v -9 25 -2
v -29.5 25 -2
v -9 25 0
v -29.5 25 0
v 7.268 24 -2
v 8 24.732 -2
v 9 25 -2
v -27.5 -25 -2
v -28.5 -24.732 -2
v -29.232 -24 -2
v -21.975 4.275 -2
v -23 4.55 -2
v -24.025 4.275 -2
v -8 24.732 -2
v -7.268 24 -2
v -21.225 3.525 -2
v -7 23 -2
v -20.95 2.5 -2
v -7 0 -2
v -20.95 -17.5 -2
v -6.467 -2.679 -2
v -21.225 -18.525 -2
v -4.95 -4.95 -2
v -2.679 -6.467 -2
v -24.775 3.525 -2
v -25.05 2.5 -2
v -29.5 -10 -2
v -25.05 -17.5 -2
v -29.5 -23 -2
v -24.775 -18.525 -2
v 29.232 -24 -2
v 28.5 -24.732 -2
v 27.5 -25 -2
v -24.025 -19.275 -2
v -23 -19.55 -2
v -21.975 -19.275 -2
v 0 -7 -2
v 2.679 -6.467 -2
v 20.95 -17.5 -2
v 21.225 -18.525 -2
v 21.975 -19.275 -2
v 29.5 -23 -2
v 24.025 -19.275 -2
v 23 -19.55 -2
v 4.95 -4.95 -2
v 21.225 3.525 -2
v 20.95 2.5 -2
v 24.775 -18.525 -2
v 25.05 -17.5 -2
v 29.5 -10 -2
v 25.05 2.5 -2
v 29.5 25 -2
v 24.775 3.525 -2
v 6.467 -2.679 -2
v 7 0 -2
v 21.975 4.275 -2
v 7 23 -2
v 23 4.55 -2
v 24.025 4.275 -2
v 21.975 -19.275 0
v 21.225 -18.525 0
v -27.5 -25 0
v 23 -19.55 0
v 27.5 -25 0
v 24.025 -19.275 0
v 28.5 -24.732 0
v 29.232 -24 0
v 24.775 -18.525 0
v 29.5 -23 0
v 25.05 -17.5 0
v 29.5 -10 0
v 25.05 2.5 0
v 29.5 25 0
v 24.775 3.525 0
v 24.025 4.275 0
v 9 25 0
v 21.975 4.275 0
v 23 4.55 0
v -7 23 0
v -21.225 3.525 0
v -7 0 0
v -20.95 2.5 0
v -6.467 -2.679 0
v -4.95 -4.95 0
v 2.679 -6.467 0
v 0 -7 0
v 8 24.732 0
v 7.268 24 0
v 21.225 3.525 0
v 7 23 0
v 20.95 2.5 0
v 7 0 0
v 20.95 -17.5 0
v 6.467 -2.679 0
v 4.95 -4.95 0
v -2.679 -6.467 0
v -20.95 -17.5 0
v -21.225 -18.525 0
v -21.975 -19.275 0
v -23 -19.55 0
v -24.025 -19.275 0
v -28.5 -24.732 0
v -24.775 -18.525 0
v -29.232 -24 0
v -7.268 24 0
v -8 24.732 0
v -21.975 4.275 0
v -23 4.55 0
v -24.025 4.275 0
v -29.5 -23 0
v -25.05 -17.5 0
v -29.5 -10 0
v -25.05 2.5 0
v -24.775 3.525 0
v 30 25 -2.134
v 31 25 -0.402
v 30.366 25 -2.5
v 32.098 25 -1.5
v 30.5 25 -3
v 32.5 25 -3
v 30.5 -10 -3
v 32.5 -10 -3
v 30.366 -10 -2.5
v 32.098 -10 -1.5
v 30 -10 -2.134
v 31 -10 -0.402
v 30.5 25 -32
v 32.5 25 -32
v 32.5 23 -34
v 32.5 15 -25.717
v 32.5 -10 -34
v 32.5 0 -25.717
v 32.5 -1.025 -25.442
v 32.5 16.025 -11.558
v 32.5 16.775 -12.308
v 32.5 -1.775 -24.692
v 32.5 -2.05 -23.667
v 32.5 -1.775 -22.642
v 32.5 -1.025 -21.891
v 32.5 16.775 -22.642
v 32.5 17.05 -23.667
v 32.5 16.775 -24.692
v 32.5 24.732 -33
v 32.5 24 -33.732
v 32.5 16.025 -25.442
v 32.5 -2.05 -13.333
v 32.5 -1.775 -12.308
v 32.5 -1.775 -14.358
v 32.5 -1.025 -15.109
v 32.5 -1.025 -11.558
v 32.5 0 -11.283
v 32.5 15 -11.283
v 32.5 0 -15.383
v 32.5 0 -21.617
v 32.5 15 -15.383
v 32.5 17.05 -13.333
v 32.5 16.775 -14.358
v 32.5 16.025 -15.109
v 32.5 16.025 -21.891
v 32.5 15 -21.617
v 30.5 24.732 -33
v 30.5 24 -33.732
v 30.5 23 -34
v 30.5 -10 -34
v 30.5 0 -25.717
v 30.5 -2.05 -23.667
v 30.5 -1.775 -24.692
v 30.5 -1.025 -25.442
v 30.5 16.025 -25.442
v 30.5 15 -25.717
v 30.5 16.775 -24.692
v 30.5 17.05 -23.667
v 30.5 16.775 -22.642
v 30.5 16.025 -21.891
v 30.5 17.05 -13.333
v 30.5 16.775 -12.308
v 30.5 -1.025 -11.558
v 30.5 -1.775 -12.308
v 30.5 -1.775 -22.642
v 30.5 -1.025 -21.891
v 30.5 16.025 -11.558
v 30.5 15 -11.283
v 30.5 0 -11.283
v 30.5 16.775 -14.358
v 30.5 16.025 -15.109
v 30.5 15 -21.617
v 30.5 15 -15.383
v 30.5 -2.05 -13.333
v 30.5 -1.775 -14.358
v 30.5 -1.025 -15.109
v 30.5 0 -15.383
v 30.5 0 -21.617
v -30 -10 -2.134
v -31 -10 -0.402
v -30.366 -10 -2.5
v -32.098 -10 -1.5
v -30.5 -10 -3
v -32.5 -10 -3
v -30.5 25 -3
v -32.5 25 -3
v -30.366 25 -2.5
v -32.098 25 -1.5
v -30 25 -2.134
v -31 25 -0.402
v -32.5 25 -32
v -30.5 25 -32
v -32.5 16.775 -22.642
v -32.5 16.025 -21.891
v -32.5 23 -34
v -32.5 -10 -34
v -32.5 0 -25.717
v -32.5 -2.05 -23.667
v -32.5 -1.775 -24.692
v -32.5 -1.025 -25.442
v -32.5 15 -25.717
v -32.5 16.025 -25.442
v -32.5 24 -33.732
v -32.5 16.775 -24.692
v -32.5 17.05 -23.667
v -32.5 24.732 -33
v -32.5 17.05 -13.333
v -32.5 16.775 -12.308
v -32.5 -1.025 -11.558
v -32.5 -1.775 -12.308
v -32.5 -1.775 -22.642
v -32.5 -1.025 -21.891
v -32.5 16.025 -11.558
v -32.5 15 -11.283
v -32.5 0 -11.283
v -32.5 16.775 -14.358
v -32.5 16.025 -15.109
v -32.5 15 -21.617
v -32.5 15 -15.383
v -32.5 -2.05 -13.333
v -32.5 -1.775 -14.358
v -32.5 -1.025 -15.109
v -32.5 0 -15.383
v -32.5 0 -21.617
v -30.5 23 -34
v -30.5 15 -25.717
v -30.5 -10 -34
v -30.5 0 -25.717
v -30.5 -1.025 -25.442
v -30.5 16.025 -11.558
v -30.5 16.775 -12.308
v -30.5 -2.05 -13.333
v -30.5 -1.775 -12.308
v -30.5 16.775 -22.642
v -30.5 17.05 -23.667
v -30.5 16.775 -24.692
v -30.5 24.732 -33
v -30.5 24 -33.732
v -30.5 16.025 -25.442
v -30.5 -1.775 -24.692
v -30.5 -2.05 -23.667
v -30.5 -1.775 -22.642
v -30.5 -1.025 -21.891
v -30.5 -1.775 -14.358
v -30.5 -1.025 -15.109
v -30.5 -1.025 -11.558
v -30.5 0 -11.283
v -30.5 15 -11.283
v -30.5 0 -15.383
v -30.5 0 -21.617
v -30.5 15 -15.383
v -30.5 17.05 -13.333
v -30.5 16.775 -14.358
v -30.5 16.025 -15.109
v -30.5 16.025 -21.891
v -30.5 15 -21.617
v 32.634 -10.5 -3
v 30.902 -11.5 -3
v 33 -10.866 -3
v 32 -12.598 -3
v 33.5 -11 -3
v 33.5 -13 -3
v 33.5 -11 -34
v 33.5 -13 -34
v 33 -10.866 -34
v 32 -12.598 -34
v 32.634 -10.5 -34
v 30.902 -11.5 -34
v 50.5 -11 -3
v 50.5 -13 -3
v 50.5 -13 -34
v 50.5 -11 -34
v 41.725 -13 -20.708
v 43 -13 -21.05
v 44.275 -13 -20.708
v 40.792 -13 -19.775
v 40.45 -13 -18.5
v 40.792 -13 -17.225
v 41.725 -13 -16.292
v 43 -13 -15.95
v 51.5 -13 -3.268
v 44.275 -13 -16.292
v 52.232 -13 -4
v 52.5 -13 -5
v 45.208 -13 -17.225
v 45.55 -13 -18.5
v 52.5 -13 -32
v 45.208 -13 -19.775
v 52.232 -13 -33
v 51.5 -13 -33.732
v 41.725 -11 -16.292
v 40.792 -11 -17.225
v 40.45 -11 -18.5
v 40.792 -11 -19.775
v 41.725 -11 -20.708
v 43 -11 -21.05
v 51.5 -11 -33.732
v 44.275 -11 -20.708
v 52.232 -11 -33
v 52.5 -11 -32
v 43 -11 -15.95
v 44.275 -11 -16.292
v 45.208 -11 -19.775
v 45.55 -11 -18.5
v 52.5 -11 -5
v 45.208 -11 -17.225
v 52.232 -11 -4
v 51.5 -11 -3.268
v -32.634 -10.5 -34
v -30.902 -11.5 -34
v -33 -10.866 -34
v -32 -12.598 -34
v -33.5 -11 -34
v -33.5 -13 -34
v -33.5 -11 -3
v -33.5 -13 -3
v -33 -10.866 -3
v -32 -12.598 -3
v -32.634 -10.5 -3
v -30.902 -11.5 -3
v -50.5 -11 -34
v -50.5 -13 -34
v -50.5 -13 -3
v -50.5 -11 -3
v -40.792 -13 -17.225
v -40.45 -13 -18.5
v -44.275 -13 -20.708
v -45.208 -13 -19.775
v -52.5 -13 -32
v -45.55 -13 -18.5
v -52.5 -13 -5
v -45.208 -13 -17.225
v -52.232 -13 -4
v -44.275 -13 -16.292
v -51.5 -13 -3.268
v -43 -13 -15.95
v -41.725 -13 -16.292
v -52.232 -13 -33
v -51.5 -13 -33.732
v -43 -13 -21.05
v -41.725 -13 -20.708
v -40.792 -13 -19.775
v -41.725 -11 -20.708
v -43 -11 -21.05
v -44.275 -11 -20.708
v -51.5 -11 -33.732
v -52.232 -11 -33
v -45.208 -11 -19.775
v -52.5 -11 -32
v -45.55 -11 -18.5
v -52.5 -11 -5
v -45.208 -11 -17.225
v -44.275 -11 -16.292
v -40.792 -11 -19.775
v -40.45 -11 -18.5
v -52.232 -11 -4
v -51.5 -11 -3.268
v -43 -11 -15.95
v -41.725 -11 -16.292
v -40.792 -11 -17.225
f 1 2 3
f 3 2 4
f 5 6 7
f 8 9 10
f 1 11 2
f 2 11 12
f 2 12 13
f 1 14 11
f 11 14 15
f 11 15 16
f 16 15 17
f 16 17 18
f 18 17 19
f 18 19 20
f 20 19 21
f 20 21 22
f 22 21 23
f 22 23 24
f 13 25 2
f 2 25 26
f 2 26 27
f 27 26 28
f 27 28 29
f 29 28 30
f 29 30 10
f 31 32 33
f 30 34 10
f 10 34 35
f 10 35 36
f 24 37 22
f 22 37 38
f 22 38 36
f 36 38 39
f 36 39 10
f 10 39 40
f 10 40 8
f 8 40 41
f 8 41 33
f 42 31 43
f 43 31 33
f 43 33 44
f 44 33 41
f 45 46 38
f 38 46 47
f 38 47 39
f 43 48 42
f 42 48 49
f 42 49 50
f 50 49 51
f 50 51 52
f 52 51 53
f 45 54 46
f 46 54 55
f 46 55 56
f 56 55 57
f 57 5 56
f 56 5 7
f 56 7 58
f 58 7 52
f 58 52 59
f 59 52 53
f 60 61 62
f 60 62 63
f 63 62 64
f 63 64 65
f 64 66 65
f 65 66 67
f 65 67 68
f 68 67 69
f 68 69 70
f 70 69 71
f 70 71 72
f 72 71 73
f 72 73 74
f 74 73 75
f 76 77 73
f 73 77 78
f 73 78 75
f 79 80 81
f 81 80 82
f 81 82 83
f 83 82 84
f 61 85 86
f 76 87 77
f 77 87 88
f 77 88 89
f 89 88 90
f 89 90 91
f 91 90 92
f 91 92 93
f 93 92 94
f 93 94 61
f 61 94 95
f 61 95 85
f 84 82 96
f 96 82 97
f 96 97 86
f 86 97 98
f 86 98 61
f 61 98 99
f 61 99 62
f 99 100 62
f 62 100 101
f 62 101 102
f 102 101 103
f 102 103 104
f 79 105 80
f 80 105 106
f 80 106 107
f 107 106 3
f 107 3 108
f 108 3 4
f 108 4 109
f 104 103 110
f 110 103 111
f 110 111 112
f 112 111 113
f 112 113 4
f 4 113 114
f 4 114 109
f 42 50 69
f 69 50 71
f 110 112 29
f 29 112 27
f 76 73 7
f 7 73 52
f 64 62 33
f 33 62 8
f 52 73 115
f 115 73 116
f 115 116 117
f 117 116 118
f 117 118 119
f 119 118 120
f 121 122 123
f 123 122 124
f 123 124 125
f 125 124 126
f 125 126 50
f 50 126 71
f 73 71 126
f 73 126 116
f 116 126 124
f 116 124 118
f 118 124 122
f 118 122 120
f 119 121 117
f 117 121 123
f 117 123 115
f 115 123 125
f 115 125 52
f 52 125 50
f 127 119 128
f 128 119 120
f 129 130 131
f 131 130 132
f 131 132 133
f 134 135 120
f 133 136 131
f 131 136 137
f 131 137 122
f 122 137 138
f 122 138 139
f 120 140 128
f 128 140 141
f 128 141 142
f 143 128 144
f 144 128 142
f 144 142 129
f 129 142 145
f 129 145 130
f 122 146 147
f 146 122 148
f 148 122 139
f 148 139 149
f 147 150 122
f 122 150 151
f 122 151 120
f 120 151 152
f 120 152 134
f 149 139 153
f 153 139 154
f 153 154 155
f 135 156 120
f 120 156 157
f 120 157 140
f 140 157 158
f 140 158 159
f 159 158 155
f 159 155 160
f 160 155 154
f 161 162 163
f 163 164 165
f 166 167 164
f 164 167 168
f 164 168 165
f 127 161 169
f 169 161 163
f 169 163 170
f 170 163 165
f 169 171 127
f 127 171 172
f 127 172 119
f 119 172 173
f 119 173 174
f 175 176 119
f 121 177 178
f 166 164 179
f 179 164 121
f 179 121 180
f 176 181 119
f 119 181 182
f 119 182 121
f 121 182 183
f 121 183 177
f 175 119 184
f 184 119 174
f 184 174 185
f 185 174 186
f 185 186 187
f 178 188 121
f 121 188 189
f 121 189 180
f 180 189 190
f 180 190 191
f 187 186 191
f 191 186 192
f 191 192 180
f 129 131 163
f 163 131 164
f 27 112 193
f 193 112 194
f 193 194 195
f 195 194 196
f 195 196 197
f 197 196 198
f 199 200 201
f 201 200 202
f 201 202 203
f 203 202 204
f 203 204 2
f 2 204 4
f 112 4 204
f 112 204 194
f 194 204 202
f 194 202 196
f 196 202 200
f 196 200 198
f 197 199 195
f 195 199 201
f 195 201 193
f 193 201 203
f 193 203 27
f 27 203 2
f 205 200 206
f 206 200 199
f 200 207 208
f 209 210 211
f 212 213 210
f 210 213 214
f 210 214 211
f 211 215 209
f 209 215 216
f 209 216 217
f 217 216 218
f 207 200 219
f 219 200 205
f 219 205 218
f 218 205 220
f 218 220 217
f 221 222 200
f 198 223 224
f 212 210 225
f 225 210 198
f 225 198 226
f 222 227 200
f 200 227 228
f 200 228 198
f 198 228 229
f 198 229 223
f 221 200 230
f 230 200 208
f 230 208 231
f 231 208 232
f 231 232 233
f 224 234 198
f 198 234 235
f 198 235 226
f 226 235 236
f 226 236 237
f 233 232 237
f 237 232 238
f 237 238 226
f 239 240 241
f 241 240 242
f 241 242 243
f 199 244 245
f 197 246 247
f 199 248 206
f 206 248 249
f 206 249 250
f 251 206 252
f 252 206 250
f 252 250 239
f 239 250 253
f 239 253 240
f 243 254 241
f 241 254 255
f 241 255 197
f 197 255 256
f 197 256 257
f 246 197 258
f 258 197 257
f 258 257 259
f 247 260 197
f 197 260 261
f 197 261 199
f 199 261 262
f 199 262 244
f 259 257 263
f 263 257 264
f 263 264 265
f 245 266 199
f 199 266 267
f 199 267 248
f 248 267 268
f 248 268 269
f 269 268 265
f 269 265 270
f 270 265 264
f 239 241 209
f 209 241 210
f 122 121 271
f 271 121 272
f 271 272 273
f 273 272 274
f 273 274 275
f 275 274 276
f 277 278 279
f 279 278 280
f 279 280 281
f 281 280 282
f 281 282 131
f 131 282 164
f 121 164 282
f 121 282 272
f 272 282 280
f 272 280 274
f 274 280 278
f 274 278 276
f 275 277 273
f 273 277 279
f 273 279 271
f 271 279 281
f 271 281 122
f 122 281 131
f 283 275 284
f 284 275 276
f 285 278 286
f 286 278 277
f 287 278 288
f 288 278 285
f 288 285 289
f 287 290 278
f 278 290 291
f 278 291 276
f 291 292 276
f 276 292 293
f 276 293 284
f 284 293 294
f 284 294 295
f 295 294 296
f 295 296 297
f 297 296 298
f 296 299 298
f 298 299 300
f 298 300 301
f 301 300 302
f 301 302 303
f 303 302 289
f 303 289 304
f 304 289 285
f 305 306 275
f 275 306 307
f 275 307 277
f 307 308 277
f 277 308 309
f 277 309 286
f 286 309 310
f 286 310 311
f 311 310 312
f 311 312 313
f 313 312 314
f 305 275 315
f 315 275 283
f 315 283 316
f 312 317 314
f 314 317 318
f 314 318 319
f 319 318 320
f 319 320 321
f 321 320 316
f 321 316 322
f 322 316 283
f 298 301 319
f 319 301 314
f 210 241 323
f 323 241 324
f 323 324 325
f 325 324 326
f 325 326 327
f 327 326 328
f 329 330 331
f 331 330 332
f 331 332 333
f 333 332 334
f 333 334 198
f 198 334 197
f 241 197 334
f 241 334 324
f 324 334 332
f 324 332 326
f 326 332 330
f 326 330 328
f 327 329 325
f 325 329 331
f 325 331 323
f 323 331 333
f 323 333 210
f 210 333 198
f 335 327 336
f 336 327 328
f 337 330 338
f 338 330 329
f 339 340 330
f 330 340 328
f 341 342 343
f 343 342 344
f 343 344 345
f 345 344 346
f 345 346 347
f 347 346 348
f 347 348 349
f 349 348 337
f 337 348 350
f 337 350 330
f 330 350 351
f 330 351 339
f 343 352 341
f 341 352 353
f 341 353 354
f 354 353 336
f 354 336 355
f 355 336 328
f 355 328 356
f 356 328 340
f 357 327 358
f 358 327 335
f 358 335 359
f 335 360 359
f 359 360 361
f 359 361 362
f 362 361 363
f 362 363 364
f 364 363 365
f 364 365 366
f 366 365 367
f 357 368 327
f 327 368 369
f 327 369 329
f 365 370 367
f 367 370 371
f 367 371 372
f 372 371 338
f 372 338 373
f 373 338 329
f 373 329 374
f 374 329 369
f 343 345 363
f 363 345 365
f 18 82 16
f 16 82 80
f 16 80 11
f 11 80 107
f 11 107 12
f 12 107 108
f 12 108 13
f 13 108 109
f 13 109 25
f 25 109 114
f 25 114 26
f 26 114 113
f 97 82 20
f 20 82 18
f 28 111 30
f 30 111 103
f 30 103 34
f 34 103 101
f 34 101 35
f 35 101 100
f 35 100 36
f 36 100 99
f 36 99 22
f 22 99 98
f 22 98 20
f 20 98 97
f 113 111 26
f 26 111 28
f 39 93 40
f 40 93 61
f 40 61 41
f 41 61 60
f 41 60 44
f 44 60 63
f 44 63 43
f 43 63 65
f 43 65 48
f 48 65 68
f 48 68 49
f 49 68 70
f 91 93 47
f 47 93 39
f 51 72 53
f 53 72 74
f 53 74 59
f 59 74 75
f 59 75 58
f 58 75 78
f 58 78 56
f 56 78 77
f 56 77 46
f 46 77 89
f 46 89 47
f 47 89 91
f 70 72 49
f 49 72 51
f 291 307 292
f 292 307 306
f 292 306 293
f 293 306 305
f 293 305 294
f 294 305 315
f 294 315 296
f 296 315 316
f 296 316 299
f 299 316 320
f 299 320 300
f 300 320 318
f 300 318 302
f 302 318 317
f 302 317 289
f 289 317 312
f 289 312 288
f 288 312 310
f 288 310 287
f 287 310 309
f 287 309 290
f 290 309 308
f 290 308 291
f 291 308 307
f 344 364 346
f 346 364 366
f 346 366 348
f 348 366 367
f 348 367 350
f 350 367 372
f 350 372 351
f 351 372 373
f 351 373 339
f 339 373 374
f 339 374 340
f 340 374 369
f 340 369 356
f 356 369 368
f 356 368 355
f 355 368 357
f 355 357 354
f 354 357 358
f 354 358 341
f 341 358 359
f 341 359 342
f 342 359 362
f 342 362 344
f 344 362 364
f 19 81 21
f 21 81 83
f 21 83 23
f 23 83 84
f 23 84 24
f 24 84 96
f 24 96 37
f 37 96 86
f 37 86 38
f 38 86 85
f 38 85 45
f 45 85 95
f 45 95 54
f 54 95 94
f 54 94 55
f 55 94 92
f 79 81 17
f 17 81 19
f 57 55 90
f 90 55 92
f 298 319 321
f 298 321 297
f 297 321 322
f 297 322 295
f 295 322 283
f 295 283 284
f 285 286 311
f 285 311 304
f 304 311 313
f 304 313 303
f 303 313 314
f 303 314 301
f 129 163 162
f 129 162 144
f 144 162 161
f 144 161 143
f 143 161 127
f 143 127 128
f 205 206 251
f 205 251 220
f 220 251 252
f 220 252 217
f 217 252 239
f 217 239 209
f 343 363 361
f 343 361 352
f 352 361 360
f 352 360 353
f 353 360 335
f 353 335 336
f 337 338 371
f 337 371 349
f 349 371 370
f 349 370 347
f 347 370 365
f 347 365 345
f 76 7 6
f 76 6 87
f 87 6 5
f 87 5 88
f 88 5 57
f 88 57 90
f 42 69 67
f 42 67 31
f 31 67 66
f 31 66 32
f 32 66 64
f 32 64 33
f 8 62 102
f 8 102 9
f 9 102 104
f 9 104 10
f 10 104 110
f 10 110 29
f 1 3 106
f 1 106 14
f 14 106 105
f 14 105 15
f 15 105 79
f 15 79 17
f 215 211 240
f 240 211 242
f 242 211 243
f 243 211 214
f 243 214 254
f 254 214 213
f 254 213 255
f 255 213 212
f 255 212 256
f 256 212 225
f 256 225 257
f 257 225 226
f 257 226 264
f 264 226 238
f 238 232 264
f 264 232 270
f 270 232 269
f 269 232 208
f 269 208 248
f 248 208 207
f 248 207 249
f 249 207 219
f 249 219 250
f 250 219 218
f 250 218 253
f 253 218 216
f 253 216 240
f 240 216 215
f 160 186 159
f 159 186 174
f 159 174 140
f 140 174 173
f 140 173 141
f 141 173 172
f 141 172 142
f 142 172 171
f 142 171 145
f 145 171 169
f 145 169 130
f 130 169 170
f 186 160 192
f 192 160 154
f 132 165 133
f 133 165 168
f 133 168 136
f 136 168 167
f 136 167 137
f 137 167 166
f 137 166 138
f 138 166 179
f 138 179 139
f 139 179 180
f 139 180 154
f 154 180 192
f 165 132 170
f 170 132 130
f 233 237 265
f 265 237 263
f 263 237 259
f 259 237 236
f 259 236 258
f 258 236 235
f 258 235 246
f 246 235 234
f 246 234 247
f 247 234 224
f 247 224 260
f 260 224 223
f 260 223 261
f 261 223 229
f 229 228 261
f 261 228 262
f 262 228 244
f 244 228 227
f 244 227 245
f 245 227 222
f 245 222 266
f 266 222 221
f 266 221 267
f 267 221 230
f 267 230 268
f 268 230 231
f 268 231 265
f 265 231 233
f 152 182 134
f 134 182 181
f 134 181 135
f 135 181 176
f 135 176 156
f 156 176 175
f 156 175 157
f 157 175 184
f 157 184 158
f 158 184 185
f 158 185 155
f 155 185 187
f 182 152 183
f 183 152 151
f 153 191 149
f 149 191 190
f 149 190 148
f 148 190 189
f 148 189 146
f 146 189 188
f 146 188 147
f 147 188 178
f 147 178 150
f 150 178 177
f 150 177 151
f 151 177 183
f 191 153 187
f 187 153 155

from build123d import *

# Parameters (mm, degrees)
SKETCH1_W               = 59
SKETCH1_H               = 50
BASE_FLANGE1_DEPTH      = 2
EDGE_FLANGE1_DEPTH      = 35
EDGE_FLANGE1_BEND_DEPTH = 35
EDGE_FLANGE2_DEPTH      = 31
EDGE_FLANGE2_BEND_DEPTH = 31
CUT_EXTRUDE1_REACH      = 69.359
CUT_EXTRUDE2_REACH      = 74.168
SKETCH19_R              = 2.55
CUT_EXTRUDE3_REACH      = 69.359
SKETCH20_R              = 7
BREAK_CORNER1_START     = -13
BREAK_CORNER1_DEPTH     = 2
BREAK_CORNER1_START_2   = -32.5
BREAK_CORNER1_2_DEPTH   = 65
BREAK_CORNER1_START_3   = -2
BREAK_CORNER1_3_DEPTH   = 2
CUT_EXTRUDE4_DEPTH      = 95.899947313


# Read off the part's stored shape, not the designer's step: Break-Corner1
# Sheet-metal steps are written as plain solids
with BuildPart() as part:
    # Sketch1 → Base-Flange1 (new body)
    with BuildSketch(Plane.XY):
        Rectangle(SKETCH1_W, SKETCH1_H)
    extrude(amount=-BASE_FLANGE1_DEPTH)

    # Edge-Flange1 section (across the edge) → Edge-Flange1 (add)
    with BuildSketch(Plane(origin=(30.5, 25, -2), x_dir=(-1, 0, 0), z_dir=(0, -1, 0))):
        with BuildLine():
            Line((-2, 1), (-2, 32))
            Line((-2, 32), (0, 32))
            Line((0, 32), (0, 1))
            ThreePointArc((0, 1), (0.292893219, 0.292893219), (1, 0))
            Line((1, 0), (1, -2))
            ThreePointArc((1, -2), (-1.121320344, -1.121320344), (-2, 1))
        make_face()
    extrude(amount=EDGE_FLANGE1_DEPTH)

    # Edge-Flange1 section 2 (across the edge) → Edge-Flange1 bend (add)
    with BuildSketch(Plane(origin=(-30.5, -10, -2), x_dir=(1, 0, 0), z_dir=(0, 1, 0))):
        with BuildLine():
            Line((-2, 1), (-2, 32))
            Line((-2, 32), (0, 32))
            Line((0, 32), (0, 1))
            ThreePointArc((0, 1), (0.292893219, 0.292893219), (1, 0))
            Line((1, 0), (1, -2))
            ThreePointArc((1, -2), (-1.121320344, -1.121320344), (-2, 1))
        make_face()
    extrude(amount=EDGE_FLANGE1_BEND_DEPTH)

    # Edge-Flange2 section (across the edge) → Edge-Flange2 (add)
    with BuildSketch(Plane(origin=(32.5, -11, -3), x_dir=(0, 1, 0), z_dir=(0, 0, -1))):
        with BuildLine():
            Line((-2, 1), (-2, 20))
            Line((-2, 20), (0, 20))
            Line((0, 20), (0, 1))
            ThreePointArc((0, 1), (0.292893219, 0.292893219), (1, 0))
            Line((1, 0), (1, -2))
            ThreePointArc((1, -2), (-1.121320344, -1.121320344), (-2, 1))
        make_face()
    extrude(amount=EDGE_FLANGE2_DEPTH)

    # Edge-Flange2 section 2 (across the edge) → Edge-Flange2 bend (add)
    with BuildSketch(Plane(origin=(-32.5, -11, -34), x_dir=(0, 1, 0), z_dir=(0, 0, 1))):
        with BuildLine():
            Line((-2, 1), (-2, 20))
            Line((-2, 20), (0, 20))
            Line((0, 20), (0, 1))
            ThreePointArc((0, 1), (0.292893219, 0.292893219), (1, 0))
            Line((1, 0), (1, -2))
            ThreePointArc((1, -2), (-1.121320344, -1.121320344), (-2, 1))
        make_face()
    extrude(amount=EDGE_FLANGE2_BEND_DEPTH)

    # Sketch18 → Cut-Extrude1 (cut, up to next)
    with BuildSketch(Plane.XY, mode=Mode.PRIVATE) as cut_extrude1_sk1:
        with BuildLine():
            Line((-20.95, 2.5), (-20.95, -17.5))
            ThreePointArc((-20.95, -17.5), (-23, -19.55), (-25.05, -17.5))
            Line((-25.05, -17.5), (-25.05, 2.5))
            ThreePointArc((-25.05, 2.5), (-23, 4.55), (-20.95, 2.5))
        make_face()
    cut_extrude1_tool1 = extrude(cut_extrude1_sk1.sketch, amount=-CUT_EXTRUDE1_REACH, mode=Mode.PRIVATE) & part.part
    # Sketch18 → Cut-Extrude1 (cut, up to next)
    with BuildSketch(Plane.XY, mode=Mode.PRIVATE) as cut_extrude1_sk2:
        with BuildLine():
            Line((20.95, -17.5), (20.95, 2.5))
            ThreePointArc((20.95, 2.5), (23, 4.55), (25.05, 2.5))
            Line((25.05, 2.5), (25.05, -17.5))
            ThreePointArc((25.05, -17.5), (23, -19.55), (20.95, -17.5))
        make_face()
    cut_extrude1_tool2 = extrude(cut_extrude1_sk2.sketch, amount=-CUT_EXTRUDE1_REACH, mode=Mode.PRIVATE) & part.part
    add(cut_extrude1_tool1.solids().sort_by_distance((-23, -7.5, 0))[0], mode=Mode.SUBTRACT)
    add(cut_extrude1_tool2.solids().sort_by_distance((23, -7.5, 0))[0], mode=Mode.SUBTRACT)

    # Sketch19 → Cut-Extrude2 (cut, up to next)
    with BuildSketch(Plane(origin=(0, -11, 0), x_dir=(1, 0, 0), z_dir=(0, 1, 0)), mode=Mode.PRIVATE) as cut_extrude2_sk1:
        with Locations(Location((43, 18.5, 0), (0, 0, 180))):
            Circle(SKETCH19_R)
    cut_extrude2_tool1 = extrude(cut_extrude2_sk1.sketch, amount=-CUT_EXTRUDE2_REACH, mode=Mode.PRIVATE) & part.part
    # Sketch19 → Cut-Extrude2 (cut, up to next)
    with BuildSketch(Plane(origin=(0, -11, 0), x_dir=(1, 0, 0), z_dir=(0, 1, 0)), mode=Mode.PRIVATE) as cut_extrude2_sk2:
        with Locations(Location((-43, 18.5, 0), (0, 0, 180))):
            Circle(SKETCH19_R)
    cut_extrude2_tool2 = extrude(cut_extrude2_sk2.sketch, amount=-CUT_EXTRUDE2_REACH, mode=Mode.PRIVATE) & part.part
    add(cut_extrude2_tool1.solids().sort_by_distance((43, -11, -18.5))[0], mode=Mode.SUBTRACT)
    add(cut_extrude2_tool2.solids().sort_by_distance((-43, -11, -18.5))[0], mode=Mode.SUBTRACT)

    # Sketch20 → Cut-Extrude3 (cut, up to next)
    with BuildSketch(Plane.XY, mode=Mode.PRIVATE) as cut_extrude3_sk1:
        Circle(SKETCH20_R)
    cut_extrude3_tool1 = extrude(cut_extrude3_sk1.sketch, amount=-CUT_EXTRUDE3_REACH, mode=Mode.PRIVATE) & part.part
    # Sketch20 → Cut-Extrude3 (cut, up to next)
    with BuildSketch(Plane.XY, mode=Mode.PRIVATE) as cut_extrude3_sk2:
        with BuildLine():
            ThreePointArc((-7, 0), (0, 7), (7, 0))
            Line((7, 0), (7, 25))
            Line((7, 25), (-7, 25))
            Line((-7, 25), (-7, 0))
        make_face()
    cut_extrude3_tool2 = extrude(cut_extrude3_sk2.sketch, amount=-CUT_EXTRUDE3_REACH, mode=Mode.PRIVATE) & part.part
    add(cut_extrude3_tool1.solids().sort_by_distance((0, 0, 0))[0], mode=Mode.SUBTRACT)
    add(cut_extrude3_tool2.solids().sort_by_distance((0, 15.186311, 0))[0], mode=Mode.SUBTRACT)

    # Break-Corner1 outline → Break-Corner1 (cut)
    with BuildSketch(Plane(origin=(0, 0, 0), x_dir=(1, 0, 0), z_dir=(0, 1, 0)).offset(BREAK_CORNER1_START)):
        with BuildLine():
            ThreePointArc((50.5, 34), (51.914213562, 33.414213562), (52.5, 32))
            Line((52.5, 32), (52.5, 34))
            Line((52.5, 34), (50.5, 34))
        make_face()
        with BuildLine():
            ThreePointArc((52.5, 5), (51.914213562, 3.585786438), (50.5, 3))
            Line((50.5, 3), (52.5, 3))
            Line((52.5, 3), (52.5, 5))
        make_face()
        with BuildLine():
            ThreePointArc((-50.5, 3), (-51.914213562, 3.585786438), (-52.5, 5))
            Line((-52.5, 5), (-52.5, 3))
            Line((-52.5, 3), (-50.5, 3))
        make_face()
        with BuildLine():
            ThreePointArc((-52.5, 32), (-51.914213562, 33.414213562), (-50.5, 34))
            Line((-50.5, 34), (-52.5, 34))
            Line((-52.5, 34), (-52.5, 32))
        make_face()
    extrude(amount=BREAK_CORNER1_DEPTH, mode=Mode.SUBTRACT)

    # Break-Corner1 2 outline → Break-Corner1 2 (cut)
    with BuildSketch(Plane.YZ.offset(BREAK_CORNER1_START_2)):
        with BuildLine():
            Line((25, -34), (25, -32))
            ThreePointArc((25, -32), (24.414213562, -33.414213562), (23, -34))
            Line((23, -34), (25, -34))
        make_face()
    extrude(amount=BREAK_CORNER1_2_DEPTH, mode=Mode.SUBTRACT)

    # Break-Corner1 3 outline → Break-Corner1 3 (cut)
    with BuildSketch(Plane.XY.offset(BREAK_CORNER1_START_3)):
        with BuildLine():
            Line((7, 25), (7, 23))
            ThreePointArc((7, 23), (7.585786438, 24.414213562), (9, 25))
            Line((9, 25), (7, 25))
        make_face()
        with BuildLine():
            Line((-29.5, -25), (-27.5, -25))
            ThreePointArc((-27.5, -25), (-28.914213562, -24.414213562), (-29.5, -23))
            Line((-29.5, -23), (-29.5, -25))
        make_face()
        with BuildLine():
            ThreePointArc((29.5, -23), (28.914213562, -24.414213562), (27.5, -25))
            Line((27.5, -25), (29.5, -25))
            Line((29.5, -25), (29.5, -23))
        make_face()
        with BuildLine():
            ThreePointArc((-9, 25), (-7.585786438, 24.414213562), (-7, 23))
            Line((-7, 23), (-7, 25))
            Line((-7, 25), (-9, 25))
        make_face()
    extrude(amount=BREAK_CORNER1_3_DEPTH, mode=Mode.SUBTRACT)

    # Sketch21 → Cut-Extrude4 (cut, through all)
    with BuildSketch(Plane.ZY.offset(32.5)):
        with BuildLine():
            Line((-21.616666667, 15), (-21.616666667, 0))
            ThreePointArc((-21.616666667, 0), (-23.666666667, -2.05), (-25.716666667, 0))
            Line((-25.716666667, 0), (-25.716666667, 15))
            ThreePointArc((-25.716666667, 15), (-23.666666667, 17.05), (-21.616666667, 15))
        make_face()
        with BuildLine():
            Line((-11.283333333, 15), (-11.283333333, 0))
            ThreePointArc((-11.283333333, 0), (-13.333333333, -2.05), (-15.383333333, 0))
            Line((-15.383333333, 0), (-15.383333333, 15))
            ThreePointArc((-15.383333333, 15), (-13.333333333, 17.05), (-11.283333333, 15))
        make_face()
    extrude(amount=-CUT_EXTRUDE4_DEPTH, mode=Mode.SUBTRACT)


solid = part.part
